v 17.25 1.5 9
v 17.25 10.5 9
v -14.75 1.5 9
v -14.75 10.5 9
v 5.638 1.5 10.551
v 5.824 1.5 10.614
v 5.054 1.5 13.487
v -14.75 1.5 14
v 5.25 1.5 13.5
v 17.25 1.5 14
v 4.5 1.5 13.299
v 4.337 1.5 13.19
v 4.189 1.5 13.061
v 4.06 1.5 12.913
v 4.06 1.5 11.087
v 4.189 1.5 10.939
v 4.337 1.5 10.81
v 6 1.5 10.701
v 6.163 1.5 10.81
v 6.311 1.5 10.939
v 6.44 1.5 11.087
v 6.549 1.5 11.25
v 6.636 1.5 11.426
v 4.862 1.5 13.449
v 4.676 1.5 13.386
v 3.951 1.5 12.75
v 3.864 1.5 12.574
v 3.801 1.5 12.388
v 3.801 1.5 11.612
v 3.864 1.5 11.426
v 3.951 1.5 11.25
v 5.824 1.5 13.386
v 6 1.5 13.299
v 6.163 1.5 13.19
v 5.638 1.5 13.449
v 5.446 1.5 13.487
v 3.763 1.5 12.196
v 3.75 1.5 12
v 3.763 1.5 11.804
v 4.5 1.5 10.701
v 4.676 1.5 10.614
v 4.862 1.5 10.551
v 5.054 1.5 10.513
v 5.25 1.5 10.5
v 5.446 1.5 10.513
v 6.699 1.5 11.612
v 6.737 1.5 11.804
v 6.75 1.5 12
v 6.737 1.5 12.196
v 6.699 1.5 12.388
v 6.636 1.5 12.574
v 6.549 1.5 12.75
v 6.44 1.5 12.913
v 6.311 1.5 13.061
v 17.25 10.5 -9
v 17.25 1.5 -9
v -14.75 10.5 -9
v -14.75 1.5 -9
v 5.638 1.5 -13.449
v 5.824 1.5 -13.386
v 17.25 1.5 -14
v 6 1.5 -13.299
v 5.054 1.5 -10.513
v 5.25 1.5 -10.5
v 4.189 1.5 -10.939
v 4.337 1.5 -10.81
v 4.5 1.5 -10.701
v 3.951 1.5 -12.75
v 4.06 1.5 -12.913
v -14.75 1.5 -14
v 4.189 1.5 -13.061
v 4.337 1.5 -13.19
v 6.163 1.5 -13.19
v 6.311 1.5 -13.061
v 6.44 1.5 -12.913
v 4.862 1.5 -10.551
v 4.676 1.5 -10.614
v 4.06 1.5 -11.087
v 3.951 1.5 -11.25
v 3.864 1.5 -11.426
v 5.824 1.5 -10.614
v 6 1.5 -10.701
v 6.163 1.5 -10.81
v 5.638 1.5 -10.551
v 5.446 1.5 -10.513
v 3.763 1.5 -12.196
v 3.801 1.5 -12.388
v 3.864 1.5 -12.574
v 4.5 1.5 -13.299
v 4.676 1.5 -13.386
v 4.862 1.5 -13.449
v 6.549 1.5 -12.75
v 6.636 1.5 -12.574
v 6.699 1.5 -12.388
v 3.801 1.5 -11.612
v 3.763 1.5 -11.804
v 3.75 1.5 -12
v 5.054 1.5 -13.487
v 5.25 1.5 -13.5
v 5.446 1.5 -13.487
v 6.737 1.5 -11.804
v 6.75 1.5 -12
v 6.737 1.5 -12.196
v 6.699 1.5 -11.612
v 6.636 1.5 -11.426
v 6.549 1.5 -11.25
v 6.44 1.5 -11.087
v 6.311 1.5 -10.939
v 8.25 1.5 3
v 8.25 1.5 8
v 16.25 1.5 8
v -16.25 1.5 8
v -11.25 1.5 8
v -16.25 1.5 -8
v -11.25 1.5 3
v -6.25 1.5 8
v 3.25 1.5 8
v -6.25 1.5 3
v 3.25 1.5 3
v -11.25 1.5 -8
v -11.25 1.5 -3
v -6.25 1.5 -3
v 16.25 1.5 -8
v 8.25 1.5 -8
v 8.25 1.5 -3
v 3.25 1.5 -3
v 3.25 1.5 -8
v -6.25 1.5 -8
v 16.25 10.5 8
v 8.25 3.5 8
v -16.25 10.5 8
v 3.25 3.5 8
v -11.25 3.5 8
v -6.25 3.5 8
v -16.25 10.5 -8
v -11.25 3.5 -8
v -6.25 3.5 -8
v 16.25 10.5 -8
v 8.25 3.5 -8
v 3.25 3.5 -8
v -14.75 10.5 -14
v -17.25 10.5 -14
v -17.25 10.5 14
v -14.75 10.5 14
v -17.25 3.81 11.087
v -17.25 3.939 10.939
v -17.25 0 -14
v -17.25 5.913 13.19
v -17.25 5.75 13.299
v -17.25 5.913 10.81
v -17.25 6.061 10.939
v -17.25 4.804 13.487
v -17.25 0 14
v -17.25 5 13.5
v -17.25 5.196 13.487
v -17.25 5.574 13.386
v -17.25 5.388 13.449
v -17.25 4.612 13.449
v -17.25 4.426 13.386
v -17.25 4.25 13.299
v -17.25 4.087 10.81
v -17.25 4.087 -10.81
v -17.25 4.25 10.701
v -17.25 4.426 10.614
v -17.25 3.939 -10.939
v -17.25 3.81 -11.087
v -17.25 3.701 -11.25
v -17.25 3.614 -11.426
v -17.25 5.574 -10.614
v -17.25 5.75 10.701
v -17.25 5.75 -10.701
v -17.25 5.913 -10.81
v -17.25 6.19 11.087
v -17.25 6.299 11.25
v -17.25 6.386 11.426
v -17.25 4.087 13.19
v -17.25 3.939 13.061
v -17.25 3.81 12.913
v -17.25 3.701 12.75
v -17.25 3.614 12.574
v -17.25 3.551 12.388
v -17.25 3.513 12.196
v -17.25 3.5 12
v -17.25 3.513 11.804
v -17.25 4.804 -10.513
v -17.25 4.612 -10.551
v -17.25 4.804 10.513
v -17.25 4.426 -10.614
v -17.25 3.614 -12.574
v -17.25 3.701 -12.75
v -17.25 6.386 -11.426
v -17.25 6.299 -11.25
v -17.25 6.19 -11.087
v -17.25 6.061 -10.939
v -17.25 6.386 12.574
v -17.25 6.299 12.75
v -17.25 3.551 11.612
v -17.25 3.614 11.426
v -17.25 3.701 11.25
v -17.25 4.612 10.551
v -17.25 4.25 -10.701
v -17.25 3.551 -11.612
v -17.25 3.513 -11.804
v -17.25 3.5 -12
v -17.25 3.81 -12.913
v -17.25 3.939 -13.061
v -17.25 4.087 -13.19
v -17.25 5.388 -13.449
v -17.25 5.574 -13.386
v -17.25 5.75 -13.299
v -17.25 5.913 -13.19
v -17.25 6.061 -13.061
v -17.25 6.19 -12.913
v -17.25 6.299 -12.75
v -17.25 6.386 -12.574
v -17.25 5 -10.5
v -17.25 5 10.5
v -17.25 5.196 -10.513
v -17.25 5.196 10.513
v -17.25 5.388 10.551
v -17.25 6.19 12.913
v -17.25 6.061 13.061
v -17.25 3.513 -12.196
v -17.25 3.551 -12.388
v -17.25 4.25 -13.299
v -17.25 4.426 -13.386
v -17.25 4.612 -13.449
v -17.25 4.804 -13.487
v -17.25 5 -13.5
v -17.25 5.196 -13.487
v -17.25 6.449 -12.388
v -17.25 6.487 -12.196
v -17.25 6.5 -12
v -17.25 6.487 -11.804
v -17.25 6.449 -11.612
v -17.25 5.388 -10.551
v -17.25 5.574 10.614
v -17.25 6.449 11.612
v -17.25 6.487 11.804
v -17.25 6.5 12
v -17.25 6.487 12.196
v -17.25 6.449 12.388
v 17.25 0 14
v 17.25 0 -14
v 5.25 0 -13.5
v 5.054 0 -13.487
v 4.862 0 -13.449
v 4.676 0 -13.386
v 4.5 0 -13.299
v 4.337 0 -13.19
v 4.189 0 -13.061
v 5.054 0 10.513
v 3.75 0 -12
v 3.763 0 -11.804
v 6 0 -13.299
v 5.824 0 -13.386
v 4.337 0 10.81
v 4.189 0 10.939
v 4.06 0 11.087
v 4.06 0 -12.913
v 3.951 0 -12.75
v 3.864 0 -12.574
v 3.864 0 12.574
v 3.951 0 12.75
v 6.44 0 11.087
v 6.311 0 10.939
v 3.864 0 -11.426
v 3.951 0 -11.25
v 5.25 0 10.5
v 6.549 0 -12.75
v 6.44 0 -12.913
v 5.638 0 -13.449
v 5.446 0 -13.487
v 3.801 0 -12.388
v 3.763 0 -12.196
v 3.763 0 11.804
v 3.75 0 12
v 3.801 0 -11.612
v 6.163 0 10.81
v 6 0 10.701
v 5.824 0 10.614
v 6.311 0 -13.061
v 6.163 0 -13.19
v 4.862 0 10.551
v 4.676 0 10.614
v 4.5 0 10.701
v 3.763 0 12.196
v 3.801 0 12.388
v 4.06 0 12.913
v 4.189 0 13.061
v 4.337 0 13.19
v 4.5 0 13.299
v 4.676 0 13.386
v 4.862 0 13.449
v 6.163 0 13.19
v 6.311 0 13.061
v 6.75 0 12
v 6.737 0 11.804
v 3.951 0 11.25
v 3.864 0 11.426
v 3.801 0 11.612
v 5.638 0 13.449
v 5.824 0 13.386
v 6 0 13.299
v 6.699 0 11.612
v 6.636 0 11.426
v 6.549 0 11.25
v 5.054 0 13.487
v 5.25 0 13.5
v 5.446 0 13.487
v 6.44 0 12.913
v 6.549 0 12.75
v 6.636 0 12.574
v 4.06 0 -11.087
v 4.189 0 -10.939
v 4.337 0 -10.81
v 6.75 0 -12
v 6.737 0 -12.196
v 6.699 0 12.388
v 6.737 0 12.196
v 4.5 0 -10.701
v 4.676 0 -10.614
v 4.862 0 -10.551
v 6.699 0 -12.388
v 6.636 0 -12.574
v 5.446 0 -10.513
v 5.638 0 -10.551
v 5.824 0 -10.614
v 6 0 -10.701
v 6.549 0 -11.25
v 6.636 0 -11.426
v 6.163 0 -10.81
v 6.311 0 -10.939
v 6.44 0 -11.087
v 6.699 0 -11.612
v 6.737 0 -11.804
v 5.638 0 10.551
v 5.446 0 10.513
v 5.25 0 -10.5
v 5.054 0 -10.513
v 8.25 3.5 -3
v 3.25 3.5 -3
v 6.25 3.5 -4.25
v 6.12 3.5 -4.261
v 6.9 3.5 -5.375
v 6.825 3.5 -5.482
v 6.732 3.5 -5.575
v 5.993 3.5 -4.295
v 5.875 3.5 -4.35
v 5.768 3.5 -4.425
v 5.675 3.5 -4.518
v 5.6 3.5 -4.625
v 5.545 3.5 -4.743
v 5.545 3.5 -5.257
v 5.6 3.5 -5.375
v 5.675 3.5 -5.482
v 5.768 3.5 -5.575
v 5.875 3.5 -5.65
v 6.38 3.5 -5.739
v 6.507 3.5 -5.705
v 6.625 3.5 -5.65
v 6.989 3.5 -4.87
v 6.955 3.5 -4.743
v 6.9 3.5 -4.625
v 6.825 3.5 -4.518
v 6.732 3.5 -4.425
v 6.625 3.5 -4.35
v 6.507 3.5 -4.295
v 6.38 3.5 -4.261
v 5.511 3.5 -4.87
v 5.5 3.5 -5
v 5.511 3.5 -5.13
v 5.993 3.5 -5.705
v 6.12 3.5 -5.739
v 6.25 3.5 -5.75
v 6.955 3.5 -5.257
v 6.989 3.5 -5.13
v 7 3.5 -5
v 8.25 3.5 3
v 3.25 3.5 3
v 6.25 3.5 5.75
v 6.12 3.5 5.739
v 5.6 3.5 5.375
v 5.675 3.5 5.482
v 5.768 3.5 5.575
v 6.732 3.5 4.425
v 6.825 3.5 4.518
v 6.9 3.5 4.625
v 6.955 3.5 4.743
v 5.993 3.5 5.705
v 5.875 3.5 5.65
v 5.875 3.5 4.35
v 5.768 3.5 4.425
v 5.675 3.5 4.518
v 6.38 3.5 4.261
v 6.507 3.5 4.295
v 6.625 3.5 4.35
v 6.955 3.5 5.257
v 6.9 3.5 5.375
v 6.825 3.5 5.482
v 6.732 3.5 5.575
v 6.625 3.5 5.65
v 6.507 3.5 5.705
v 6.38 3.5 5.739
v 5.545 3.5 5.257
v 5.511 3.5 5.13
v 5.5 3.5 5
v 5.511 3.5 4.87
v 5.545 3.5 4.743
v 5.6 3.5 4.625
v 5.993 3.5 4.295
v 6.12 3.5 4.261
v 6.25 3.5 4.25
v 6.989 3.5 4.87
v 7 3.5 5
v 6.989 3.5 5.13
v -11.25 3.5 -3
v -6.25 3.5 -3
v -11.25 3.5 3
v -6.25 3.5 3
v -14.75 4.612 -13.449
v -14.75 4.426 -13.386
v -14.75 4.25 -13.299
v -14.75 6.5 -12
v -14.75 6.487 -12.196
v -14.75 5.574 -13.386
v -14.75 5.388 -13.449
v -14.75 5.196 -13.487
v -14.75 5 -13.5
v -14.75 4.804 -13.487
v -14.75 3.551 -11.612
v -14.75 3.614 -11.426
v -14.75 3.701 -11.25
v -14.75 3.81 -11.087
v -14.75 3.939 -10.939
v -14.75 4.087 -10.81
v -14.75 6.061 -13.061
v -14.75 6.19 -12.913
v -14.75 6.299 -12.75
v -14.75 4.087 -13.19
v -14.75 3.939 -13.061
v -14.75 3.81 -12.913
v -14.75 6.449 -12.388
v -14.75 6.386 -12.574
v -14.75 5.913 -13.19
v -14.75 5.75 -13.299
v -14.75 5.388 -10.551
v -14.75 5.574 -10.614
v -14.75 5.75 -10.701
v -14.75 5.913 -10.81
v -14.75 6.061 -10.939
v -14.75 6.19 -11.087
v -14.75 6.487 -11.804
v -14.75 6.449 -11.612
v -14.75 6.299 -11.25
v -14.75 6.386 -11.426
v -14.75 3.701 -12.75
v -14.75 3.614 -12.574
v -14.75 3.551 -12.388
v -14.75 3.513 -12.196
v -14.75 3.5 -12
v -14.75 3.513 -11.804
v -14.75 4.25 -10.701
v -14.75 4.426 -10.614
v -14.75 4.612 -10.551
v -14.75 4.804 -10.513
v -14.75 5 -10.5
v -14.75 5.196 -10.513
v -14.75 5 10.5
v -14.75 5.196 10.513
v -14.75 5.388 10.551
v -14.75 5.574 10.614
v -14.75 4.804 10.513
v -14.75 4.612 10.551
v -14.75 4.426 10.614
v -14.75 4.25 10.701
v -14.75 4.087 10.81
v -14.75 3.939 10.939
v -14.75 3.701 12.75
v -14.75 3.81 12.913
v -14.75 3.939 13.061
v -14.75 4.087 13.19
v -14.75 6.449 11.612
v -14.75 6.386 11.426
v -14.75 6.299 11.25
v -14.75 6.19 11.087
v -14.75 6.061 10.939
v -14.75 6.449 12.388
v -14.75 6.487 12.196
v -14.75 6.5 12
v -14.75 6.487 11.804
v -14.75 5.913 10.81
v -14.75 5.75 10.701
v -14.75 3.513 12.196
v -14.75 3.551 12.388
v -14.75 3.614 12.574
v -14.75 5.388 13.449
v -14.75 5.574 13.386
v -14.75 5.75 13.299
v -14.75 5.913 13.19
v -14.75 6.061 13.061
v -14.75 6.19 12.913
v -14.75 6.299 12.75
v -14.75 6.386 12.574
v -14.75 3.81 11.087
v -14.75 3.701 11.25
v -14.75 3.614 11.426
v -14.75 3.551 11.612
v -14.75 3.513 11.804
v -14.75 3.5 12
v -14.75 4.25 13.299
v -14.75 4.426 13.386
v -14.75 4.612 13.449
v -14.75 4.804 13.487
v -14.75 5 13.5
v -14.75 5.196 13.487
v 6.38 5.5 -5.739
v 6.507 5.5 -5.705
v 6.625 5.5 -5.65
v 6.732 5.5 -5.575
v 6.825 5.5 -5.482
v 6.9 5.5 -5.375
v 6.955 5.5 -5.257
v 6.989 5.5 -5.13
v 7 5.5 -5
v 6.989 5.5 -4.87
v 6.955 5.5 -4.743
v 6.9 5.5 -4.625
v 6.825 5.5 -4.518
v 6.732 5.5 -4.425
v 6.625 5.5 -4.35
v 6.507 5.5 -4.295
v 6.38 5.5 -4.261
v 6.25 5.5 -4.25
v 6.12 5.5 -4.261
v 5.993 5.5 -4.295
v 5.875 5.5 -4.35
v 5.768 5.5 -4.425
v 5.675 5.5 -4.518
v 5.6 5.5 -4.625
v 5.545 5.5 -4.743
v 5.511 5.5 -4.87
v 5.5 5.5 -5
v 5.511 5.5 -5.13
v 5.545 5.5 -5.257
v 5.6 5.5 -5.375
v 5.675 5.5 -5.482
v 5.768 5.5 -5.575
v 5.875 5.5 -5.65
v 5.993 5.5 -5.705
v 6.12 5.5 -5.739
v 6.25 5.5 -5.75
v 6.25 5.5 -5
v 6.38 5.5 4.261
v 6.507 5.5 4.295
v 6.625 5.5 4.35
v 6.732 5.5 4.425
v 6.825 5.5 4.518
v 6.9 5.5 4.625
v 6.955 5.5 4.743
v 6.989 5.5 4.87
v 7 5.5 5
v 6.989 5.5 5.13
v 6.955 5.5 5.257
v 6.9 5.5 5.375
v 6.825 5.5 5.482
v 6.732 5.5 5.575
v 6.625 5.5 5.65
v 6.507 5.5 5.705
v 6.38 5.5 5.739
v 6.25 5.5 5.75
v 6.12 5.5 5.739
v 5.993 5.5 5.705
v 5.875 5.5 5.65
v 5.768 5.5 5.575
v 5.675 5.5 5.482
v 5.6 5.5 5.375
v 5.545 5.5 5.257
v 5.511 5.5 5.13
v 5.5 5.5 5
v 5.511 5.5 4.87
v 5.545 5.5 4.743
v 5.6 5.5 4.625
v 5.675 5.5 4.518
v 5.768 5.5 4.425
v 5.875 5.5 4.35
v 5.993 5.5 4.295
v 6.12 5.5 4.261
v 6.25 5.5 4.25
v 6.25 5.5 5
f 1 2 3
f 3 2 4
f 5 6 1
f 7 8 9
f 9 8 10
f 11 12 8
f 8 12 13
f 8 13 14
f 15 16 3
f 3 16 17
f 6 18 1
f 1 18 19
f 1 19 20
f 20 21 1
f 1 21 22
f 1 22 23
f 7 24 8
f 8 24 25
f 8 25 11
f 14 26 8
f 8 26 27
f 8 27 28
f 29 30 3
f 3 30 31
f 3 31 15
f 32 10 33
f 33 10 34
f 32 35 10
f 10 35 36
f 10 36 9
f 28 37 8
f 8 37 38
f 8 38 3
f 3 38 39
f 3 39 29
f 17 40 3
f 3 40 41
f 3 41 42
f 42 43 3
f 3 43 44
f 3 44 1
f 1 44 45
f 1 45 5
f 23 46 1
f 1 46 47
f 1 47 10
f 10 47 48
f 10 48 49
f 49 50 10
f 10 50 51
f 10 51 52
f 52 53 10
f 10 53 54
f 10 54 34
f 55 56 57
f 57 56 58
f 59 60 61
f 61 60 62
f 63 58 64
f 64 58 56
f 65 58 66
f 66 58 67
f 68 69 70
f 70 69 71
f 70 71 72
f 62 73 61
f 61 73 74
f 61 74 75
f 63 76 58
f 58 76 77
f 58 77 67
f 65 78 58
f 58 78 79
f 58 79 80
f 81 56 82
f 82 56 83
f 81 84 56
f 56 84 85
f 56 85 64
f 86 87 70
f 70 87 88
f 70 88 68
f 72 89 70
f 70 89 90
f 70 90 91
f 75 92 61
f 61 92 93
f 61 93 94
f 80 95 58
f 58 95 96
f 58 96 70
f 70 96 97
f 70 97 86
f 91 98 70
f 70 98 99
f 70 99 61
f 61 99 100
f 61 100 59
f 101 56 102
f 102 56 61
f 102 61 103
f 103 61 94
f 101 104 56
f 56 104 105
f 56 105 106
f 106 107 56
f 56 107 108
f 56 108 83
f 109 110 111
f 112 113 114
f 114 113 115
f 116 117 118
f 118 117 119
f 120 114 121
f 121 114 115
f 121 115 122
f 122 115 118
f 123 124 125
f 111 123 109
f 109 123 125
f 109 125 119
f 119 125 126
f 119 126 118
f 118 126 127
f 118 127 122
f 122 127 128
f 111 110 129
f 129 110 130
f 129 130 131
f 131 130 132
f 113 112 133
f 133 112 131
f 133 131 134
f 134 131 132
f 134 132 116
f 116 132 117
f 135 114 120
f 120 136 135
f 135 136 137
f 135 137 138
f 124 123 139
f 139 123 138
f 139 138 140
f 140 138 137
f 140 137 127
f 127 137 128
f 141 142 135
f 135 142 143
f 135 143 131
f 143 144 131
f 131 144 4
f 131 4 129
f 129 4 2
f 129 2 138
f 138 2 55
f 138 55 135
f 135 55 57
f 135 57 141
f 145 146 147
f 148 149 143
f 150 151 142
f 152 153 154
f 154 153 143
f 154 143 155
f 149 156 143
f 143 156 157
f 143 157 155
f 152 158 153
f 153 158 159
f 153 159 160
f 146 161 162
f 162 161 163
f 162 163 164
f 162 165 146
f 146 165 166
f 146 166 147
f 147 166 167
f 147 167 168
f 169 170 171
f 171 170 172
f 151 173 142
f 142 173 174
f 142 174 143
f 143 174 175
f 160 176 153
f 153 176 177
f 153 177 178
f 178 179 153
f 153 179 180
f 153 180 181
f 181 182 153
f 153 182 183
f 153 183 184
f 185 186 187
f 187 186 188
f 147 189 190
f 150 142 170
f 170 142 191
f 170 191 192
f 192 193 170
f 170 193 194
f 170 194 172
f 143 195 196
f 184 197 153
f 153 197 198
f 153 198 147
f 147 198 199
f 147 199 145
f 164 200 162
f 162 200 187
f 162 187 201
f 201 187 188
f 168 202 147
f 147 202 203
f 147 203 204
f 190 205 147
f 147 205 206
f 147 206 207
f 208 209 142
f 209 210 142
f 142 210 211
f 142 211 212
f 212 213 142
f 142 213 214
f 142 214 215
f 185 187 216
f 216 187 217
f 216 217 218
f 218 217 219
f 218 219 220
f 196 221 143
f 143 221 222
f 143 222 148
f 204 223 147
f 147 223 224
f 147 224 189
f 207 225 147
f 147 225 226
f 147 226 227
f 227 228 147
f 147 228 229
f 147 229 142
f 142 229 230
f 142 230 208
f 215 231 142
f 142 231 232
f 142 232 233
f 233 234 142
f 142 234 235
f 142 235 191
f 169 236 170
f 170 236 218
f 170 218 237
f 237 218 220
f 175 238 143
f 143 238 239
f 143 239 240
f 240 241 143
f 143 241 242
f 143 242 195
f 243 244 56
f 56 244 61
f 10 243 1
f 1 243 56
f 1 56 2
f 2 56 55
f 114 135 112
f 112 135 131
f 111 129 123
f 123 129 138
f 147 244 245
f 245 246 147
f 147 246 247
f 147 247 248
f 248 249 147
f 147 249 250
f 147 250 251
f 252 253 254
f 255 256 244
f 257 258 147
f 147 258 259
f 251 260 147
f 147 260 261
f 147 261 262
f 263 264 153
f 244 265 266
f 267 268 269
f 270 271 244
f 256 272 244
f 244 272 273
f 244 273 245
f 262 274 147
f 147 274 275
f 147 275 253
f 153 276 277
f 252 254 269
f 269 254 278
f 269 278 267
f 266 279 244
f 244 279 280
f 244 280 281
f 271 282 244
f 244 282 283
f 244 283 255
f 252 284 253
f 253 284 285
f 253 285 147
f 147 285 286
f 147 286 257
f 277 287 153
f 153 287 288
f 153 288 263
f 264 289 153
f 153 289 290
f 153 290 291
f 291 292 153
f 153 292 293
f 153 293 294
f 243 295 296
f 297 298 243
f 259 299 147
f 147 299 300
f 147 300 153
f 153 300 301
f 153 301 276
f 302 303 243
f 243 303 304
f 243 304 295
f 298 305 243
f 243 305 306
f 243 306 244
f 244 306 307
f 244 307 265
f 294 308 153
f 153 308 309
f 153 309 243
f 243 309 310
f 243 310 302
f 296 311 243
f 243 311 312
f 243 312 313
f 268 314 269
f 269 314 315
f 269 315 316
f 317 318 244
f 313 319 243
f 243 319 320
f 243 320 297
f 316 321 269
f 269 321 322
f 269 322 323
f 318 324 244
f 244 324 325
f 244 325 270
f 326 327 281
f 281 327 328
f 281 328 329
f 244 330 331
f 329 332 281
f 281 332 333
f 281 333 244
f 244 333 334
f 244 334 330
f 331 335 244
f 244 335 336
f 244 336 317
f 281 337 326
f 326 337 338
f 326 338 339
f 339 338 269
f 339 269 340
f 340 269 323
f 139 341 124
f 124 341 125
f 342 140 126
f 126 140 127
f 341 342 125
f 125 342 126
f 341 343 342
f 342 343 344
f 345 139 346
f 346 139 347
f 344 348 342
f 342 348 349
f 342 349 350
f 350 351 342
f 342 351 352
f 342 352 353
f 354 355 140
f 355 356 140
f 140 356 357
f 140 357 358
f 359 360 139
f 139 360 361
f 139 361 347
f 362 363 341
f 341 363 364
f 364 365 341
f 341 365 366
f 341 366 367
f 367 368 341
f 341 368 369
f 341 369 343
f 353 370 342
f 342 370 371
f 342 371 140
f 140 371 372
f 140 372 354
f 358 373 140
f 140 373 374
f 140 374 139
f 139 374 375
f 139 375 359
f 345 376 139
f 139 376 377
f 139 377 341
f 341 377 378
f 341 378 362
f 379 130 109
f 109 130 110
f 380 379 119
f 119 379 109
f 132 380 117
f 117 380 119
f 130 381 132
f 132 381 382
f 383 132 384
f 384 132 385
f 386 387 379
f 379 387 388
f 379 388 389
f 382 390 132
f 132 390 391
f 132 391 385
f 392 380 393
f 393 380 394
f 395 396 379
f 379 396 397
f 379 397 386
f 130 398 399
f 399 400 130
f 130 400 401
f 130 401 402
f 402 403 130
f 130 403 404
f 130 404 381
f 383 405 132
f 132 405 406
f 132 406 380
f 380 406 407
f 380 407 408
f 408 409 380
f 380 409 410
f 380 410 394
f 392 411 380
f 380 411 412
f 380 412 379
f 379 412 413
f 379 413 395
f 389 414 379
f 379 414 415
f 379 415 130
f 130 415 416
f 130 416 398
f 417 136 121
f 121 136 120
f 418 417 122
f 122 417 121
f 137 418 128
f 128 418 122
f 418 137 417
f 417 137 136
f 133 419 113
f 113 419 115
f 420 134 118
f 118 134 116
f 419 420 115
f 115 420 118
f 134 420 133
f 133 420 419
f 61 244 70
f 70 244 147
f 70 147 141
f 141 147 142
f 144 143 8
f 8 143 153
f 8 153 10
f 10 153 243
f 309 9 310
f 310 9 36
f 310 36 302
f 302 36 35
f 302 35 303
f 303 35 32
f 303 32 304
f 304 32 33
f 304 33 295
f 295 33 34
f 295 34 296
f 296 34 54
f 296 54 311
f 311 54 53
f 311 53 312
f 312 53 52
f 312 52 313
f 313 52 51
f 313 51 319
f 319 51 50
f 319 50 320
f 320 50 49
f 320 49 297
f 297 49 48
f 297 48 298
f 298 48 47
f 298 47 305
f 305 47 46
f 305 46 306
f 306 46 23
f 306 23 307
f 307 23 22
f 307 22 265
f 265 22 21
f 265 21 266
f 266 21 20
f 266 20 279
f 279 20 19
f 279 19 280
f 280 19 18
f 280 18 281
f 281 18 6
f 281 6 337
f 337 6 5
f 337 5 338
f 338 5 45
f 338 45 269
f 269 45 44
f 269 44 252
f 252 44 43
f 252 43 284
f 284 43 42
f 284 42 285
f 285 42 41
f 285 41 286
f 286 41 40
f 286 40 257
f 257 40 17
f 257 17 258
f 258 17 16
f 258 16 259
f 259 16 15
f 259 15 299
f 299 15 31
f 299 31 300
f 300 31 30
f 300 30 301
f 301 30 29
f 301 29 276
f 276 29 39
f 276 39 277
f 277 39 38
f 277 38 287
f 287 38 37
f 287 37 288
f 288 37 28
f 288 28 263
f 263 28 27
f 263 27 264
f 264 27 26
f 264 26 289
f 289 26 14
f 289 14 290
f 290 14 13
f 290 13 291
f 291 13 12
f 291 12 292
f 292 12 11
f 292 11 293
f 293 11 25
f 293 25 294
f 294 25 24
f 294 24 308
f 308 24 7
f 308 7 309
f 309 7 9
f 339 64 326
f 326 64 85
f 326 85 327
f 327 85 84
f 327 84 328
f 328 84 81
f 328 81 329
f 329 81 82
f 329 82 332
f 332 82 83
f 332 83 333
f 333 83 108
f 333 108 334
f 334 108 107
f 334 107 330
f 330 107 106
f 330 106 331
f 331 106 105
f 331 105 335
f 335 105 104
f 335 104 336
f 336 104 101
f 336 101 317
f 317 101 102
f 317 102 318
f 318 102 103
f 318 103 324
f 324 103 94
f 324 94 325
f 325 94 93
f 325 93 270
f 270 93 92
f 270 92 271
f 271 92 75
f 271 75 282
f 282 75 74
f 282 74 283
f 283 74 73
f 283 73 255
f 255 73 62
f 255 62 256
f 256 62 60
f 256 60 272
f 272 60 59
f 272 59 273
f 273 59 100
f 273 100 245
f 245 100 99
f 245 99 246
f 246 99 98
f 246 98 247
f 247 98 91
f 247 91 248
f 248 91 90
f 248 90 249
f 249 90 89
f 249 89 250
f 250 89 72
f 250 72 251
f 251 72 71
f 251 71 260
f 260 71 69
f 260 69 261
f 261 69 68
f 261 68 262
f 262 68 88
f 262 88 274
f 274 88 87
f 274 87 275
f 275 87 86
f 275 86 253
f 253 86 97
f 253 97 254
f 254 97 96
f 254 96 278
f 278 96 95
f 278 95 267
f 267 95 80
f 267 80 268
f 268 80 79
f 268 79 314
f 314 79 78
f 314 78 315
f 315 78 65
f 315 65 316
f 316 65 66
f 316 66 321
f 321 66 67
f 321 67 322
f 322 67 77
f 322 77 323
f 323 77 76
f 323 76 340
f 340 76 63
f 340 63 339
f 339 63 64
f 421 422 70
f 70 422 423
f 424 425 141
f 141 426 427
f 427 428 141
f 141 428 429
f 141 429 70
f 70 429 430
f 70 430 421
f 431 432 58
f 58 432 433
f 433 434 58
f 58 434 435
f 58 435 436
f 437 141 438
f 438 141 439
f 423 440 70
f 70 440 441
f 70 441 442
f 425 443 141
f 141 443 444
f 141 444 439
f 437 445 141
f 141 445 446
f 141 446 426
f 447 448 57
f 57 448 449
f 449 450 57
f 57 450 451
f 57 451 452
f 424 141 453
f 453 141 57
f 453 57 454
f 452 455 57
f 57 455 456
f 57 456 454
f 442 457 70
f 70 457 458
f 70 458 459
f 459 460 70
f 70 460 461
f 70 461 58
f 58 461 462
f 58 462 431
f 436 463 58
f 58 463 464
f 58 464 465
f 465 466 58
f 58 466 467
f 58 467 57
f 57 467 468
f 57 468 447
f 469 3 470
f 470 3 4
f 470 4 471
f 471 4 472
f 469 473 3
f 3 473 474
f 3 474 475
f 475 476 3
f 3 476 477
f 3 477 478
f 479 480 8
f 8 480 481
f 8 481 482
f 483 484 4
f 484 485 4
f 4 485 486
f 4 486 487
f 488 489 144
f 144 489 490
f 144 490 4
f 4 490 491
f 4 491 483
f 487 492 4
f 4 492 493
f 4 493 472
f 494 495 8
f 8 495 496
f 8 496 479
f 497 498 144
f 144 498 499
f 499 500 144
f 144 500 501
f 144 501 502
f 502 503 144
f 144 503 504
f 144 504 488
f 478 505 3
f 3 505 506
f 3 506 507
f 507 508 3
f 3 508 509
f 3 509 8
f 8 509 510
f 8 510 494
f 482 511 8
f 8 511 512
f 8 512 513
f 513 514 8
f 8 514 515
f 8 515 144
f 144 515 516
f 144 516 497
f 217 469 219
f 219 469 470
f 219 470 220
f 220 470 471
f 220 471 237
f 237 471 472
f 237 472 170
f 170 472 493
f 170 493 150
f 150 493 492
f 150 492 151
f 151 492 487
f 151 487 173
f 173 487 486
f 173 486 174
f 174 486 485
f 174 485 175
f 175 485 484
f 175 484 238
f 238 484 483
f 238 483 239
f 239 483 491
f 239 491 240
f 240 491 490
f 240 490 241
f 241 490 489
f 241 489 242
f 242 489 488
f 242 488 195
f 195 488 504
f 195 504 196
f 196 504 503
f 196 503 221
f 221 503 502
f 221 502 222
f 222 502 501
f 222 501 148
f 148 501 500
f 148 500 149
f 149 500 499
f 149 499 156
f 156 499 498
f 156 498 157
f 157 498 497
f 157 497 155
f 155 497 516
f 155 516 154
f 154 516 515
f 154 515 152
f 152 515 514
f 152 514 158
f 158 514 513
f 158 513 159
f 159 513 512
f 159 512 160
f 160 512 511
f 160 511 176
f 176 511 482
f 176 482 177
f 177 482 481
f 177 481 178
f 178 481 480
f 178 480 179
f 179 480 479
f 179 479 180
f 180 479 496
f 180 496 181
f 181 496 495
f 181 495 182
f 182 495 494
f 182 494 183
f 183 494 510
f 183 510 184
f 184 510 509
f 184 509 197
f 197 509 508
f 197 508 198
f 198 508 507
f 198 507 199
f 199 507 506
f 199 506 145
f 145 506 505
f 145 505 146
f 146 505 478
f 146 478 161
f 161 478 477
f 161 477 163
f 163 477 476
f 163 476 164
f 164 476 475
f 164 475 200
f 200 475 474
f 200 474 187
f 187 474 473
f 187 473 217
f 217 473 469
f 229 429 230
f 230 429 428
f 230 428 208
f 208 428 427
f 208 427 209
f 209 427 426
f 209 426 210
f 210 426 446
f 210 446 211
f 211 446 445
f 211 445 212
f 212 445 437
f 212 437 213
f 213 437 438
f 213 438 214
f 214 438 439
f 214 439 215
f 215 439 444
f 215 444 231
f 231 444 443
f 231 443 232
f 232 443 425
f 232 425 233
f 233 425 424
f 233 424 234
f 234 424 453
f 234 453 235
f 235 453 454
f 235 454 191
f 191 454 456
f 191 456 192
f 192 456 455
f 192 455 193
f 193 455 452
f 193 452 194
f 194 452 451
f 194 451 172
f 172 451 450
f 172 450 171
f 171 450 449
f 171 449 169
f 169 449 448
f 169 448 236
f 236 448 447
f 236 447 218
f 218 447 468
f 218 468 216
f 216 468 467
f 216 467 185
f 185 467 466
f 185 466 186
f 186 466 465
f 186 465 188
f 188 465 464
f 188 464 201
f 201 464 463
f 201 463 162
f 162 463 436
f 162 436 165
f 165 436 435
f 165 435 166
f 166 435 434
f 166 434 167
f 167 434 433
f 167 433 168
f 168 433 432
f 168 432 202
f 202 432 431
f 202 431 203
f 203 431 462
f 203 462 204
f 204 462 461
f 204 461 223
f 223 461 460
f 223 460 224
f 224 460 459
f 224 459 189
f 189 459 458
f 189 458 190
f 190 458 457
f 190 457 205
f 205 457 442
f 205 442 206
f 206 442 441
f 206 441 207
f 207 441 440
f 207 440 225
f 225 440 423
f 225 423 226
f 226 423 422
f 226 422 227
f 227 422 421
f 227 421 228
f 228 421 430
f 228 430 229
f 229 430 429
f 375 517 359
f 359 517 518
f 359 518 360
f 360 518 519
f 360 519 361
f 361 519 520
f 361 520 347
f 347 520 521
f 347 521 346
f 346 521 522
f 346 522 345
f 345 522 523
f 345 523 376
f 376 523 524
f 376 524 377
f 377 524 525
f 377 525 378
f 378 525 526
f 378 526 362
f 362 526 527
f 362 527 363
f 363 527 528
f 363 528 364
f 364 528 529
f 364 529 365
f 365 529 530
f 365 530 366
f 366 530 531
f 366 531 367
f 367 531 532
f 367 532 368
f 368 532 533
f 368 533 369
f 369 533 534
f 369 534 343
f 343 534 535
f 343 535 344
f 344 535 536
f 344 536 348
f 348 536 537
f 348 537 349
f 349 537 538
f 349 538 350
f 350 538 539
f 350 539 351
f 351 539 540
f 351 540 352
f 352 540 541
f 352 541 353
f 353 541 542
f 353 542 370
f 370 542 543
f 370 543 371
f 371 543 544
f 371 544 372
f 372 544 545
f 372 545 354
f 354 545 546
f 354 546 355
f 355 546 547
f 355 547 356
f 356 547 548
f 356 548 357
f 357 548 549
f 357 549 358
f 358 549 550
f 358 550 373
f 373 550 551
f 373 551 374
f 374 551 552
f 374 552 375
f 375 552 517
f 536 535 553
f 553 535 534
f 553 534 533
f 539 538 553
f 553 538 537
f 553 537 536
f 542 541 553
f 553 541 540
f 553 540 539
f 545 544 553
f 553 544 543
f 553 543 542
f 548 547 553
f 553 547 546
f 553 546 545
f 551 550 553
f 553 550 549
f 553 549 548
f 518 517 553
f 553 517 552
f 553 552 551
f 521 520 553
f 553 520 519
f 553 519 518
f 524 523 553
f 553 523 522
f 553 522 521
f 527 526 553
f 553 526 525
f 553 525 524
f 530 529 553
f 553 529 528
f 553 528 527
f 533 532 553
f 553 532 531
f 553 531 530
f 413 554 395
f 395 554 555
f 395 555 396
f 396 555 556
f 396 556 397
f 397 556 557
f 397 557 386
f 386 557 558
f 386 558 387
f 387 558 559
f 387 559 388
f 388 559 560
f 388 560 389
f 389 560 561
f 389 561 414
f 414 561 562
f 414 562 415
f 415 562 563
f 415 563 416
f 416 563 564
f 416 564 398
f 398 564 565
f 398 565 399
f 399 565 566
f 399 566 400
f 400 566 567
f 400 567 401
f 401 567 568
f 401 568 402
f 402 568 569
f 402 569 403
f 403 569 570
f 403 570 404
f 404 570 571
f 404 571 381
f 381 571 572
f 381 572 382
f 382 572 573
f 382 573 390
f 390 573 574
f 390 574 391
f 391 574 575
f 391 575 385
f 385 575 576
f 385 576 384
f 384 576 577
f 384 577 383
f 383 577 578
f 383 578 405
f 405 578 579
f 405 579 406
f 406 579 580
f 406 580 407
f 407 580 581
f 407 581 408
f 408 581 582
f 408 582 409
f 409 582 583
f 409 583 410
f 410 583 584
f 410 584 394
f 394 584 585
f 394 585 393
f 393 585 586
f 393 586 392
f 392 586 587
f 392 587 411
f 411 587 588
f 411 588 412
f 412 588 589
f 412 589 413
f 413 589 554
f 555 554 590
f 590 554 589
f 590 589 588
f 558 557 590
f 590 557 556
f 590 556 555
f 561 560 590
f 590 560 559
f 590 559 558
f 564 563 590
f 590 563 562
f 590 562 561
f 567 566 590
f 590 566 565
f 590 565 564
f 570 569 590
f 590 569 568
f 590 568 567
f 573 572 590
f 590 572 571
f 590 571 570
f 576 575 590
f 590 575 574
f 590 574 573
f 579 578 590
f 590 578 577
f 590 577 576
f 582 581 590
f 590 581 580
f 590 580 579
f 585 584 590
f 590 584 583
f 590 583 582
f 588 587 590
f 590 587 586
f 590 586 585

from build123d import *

# Parameters (mm, degrees)
SKETCH1_W           = 32.5
SKETCH1_H           = 16
BOSS_EXTRUDE1_DEPTH = 1.5
SKETCH3_W           = 34.5
SKETCH3_H           = 18
SKETCH3_W_2         = 32.5
SKETCH3_H_2         = 16
BOSS_EXTRUDE2_DEPTH = 10.5
SKETCH4_W           = 5
SKETCH4_H           = 5
BOSS_EXTRUDE3_DEPTH = 2
SKETCH6_W           = 34.5
SKETCH6_H           = 5
BOSS_EXTRUDE5_DEPTH = 1.5
SKETCH7_R           = 1.5
CUT_EXTRUDE1_DEPTH  = 1.5
SKETCH8_W           = 2.5
SKETCH8_H           = 5
BOSS_EXTRUDE6_DEPTH = 9
SKETCH9_R           = 1.5
CUT_EXTRUDE2_DEPTH  = 37.47259245
SKETCH10_R          = 0.75
BOSS_EXTRUDE7_DEPTH = 2


with BuildPart() as part:
    # Sketch1 → Boss-Extrude1 (new body)
    with BuildSketch(Plane(origin=(0, 0, 0), x_dir=(1, 0, 0), z_dir=(0, 1, 0))):
        Rectangle(SKETCH1_W, SKETCH1_H)
    extrude(amount=BOSS_EXTRUDE1_DEPTH)

    # Sketch3 → Boss-Extrude2 (add)
    with BuildSketch(Plane(origin=(0, 0, 0), x_dir=(1, 0, 0), z_dir=(0, 1, 0))):
        Rectangle(SKETCH3_W, SKETCH3_H)
        Rectangle(SKETCH3_W_2, SKETCH3_H_2, mode=Mode.SUBTRACT)
    extrude(amount=BOSS_EXTRUDE2_DEPTH)

    # Sketch4 → Boss-Extrude3 (add)
    with BuildSketch(Plane(origin=(0, 1.5, 0), x_dir=(1, 0, 0), z_dir=(0, 1, 0))):
        with Locations((5.75, 5.5)):
            Rectangle(SKETCH4_W, SKETCH4_H)
        with Locations((5.75, -5.5)):
            Rectangle(SKETCH4_W, SKETCH4_H)
        with Locations((-8.75, 5.5)):
            Rectangle(SKETCH4_W, SKETCH4_H)
        with Locations((-8.75, -5.5)):
            Rectangle(SKETCH4_W, SKETCH4_H)
    extrude(amount=BOSS_EXTRUDE3_DEPTH)

    # Sketch6 → Boss-Extrude5 (add)
    with BuildSketch(Plane(origin=(0, 0, 0), x_dir=(1, 0, 0), z_dir=(0, 1, 0))):
        with Locations((0, 11.5)):
            Rectangle(SKETCH6_W, SKETCH6_H)
        with Locations((0, -11.5)):
            Rectangle(SKETCH6_W, SKETCH6_H)
    extrude(amount=BOSS_EXTRUDE5_DEPTH)

    # Sketch7 → Cut-Extrude1 (cut)
    with BuildSketch(Plane(origin=(0, 1.5, 0), x_dir=(1, 0, 0), z_dir=(0, 1, 0))):
        with Locations(Location((5.25, 12, 0), (0, 0, 270))):
            Circle(SKETCH7_R)
        with Locations(Location((5.25, -12, 0), (0, 0, 90))):
            Circle(SKETCH7_R)
    extrude(amount=-CUT_EXTRUDE1_DEPTH, mode=Mode.SUBTRACT)

    # Sketch8 → Boss-Extrude6 (add)
    with BuildSketch(Plane(origin=(0, 1.5, 0), x_dir=(1, 0, 0), z_dir=(0, 1, 0))):
        with Locations((-16, 11.5)):
            Rectangle(SKETCH8_W, SKETCH8_H)
        with Locations((-16, -11.5)):
            Rectangle(SKETCH8_W, SKETCH8_H)
    extrude(amount=BOSS_EXTRUDE6_DEPTH)

    # Sketch9 → Cut-Extrude2 (cut, through all)
    with BuildSketch(Plane(origin=(-14.75, 0, 0), x_dir=(0, 0, -1), z_dir=(1, 0, 0))):
        with Locations((12, 5)):
            Circle(SKETCH9_R)
        with Locations(Location((-12, 5, 0), (0, 0, 180))):
            Circle(SKETCH9_R)
    extrude(amount=-CUT_EXTRUDE2_DEPTH, mode=Mode.SUBTRACT)

    # Sketch10 → Boss-Extrude7 (add)
    with BuildSketch(Plane(origin=(0, 3.5, 0), x_dir=(1, 0, 0), z_dir=(0, 1, 0))):
        with Locations(Location((6.25, 5, 0), (0, 0, 90))):
            Circle(SKETCH10_R)
        with Locations(Location((6.25, -5, 0), (0, 0, 90))):
            Circle(SKETCH10_R)
    extrude(amount=BOSS_EXTRUDE7_DEPTH)


solid = part.part
